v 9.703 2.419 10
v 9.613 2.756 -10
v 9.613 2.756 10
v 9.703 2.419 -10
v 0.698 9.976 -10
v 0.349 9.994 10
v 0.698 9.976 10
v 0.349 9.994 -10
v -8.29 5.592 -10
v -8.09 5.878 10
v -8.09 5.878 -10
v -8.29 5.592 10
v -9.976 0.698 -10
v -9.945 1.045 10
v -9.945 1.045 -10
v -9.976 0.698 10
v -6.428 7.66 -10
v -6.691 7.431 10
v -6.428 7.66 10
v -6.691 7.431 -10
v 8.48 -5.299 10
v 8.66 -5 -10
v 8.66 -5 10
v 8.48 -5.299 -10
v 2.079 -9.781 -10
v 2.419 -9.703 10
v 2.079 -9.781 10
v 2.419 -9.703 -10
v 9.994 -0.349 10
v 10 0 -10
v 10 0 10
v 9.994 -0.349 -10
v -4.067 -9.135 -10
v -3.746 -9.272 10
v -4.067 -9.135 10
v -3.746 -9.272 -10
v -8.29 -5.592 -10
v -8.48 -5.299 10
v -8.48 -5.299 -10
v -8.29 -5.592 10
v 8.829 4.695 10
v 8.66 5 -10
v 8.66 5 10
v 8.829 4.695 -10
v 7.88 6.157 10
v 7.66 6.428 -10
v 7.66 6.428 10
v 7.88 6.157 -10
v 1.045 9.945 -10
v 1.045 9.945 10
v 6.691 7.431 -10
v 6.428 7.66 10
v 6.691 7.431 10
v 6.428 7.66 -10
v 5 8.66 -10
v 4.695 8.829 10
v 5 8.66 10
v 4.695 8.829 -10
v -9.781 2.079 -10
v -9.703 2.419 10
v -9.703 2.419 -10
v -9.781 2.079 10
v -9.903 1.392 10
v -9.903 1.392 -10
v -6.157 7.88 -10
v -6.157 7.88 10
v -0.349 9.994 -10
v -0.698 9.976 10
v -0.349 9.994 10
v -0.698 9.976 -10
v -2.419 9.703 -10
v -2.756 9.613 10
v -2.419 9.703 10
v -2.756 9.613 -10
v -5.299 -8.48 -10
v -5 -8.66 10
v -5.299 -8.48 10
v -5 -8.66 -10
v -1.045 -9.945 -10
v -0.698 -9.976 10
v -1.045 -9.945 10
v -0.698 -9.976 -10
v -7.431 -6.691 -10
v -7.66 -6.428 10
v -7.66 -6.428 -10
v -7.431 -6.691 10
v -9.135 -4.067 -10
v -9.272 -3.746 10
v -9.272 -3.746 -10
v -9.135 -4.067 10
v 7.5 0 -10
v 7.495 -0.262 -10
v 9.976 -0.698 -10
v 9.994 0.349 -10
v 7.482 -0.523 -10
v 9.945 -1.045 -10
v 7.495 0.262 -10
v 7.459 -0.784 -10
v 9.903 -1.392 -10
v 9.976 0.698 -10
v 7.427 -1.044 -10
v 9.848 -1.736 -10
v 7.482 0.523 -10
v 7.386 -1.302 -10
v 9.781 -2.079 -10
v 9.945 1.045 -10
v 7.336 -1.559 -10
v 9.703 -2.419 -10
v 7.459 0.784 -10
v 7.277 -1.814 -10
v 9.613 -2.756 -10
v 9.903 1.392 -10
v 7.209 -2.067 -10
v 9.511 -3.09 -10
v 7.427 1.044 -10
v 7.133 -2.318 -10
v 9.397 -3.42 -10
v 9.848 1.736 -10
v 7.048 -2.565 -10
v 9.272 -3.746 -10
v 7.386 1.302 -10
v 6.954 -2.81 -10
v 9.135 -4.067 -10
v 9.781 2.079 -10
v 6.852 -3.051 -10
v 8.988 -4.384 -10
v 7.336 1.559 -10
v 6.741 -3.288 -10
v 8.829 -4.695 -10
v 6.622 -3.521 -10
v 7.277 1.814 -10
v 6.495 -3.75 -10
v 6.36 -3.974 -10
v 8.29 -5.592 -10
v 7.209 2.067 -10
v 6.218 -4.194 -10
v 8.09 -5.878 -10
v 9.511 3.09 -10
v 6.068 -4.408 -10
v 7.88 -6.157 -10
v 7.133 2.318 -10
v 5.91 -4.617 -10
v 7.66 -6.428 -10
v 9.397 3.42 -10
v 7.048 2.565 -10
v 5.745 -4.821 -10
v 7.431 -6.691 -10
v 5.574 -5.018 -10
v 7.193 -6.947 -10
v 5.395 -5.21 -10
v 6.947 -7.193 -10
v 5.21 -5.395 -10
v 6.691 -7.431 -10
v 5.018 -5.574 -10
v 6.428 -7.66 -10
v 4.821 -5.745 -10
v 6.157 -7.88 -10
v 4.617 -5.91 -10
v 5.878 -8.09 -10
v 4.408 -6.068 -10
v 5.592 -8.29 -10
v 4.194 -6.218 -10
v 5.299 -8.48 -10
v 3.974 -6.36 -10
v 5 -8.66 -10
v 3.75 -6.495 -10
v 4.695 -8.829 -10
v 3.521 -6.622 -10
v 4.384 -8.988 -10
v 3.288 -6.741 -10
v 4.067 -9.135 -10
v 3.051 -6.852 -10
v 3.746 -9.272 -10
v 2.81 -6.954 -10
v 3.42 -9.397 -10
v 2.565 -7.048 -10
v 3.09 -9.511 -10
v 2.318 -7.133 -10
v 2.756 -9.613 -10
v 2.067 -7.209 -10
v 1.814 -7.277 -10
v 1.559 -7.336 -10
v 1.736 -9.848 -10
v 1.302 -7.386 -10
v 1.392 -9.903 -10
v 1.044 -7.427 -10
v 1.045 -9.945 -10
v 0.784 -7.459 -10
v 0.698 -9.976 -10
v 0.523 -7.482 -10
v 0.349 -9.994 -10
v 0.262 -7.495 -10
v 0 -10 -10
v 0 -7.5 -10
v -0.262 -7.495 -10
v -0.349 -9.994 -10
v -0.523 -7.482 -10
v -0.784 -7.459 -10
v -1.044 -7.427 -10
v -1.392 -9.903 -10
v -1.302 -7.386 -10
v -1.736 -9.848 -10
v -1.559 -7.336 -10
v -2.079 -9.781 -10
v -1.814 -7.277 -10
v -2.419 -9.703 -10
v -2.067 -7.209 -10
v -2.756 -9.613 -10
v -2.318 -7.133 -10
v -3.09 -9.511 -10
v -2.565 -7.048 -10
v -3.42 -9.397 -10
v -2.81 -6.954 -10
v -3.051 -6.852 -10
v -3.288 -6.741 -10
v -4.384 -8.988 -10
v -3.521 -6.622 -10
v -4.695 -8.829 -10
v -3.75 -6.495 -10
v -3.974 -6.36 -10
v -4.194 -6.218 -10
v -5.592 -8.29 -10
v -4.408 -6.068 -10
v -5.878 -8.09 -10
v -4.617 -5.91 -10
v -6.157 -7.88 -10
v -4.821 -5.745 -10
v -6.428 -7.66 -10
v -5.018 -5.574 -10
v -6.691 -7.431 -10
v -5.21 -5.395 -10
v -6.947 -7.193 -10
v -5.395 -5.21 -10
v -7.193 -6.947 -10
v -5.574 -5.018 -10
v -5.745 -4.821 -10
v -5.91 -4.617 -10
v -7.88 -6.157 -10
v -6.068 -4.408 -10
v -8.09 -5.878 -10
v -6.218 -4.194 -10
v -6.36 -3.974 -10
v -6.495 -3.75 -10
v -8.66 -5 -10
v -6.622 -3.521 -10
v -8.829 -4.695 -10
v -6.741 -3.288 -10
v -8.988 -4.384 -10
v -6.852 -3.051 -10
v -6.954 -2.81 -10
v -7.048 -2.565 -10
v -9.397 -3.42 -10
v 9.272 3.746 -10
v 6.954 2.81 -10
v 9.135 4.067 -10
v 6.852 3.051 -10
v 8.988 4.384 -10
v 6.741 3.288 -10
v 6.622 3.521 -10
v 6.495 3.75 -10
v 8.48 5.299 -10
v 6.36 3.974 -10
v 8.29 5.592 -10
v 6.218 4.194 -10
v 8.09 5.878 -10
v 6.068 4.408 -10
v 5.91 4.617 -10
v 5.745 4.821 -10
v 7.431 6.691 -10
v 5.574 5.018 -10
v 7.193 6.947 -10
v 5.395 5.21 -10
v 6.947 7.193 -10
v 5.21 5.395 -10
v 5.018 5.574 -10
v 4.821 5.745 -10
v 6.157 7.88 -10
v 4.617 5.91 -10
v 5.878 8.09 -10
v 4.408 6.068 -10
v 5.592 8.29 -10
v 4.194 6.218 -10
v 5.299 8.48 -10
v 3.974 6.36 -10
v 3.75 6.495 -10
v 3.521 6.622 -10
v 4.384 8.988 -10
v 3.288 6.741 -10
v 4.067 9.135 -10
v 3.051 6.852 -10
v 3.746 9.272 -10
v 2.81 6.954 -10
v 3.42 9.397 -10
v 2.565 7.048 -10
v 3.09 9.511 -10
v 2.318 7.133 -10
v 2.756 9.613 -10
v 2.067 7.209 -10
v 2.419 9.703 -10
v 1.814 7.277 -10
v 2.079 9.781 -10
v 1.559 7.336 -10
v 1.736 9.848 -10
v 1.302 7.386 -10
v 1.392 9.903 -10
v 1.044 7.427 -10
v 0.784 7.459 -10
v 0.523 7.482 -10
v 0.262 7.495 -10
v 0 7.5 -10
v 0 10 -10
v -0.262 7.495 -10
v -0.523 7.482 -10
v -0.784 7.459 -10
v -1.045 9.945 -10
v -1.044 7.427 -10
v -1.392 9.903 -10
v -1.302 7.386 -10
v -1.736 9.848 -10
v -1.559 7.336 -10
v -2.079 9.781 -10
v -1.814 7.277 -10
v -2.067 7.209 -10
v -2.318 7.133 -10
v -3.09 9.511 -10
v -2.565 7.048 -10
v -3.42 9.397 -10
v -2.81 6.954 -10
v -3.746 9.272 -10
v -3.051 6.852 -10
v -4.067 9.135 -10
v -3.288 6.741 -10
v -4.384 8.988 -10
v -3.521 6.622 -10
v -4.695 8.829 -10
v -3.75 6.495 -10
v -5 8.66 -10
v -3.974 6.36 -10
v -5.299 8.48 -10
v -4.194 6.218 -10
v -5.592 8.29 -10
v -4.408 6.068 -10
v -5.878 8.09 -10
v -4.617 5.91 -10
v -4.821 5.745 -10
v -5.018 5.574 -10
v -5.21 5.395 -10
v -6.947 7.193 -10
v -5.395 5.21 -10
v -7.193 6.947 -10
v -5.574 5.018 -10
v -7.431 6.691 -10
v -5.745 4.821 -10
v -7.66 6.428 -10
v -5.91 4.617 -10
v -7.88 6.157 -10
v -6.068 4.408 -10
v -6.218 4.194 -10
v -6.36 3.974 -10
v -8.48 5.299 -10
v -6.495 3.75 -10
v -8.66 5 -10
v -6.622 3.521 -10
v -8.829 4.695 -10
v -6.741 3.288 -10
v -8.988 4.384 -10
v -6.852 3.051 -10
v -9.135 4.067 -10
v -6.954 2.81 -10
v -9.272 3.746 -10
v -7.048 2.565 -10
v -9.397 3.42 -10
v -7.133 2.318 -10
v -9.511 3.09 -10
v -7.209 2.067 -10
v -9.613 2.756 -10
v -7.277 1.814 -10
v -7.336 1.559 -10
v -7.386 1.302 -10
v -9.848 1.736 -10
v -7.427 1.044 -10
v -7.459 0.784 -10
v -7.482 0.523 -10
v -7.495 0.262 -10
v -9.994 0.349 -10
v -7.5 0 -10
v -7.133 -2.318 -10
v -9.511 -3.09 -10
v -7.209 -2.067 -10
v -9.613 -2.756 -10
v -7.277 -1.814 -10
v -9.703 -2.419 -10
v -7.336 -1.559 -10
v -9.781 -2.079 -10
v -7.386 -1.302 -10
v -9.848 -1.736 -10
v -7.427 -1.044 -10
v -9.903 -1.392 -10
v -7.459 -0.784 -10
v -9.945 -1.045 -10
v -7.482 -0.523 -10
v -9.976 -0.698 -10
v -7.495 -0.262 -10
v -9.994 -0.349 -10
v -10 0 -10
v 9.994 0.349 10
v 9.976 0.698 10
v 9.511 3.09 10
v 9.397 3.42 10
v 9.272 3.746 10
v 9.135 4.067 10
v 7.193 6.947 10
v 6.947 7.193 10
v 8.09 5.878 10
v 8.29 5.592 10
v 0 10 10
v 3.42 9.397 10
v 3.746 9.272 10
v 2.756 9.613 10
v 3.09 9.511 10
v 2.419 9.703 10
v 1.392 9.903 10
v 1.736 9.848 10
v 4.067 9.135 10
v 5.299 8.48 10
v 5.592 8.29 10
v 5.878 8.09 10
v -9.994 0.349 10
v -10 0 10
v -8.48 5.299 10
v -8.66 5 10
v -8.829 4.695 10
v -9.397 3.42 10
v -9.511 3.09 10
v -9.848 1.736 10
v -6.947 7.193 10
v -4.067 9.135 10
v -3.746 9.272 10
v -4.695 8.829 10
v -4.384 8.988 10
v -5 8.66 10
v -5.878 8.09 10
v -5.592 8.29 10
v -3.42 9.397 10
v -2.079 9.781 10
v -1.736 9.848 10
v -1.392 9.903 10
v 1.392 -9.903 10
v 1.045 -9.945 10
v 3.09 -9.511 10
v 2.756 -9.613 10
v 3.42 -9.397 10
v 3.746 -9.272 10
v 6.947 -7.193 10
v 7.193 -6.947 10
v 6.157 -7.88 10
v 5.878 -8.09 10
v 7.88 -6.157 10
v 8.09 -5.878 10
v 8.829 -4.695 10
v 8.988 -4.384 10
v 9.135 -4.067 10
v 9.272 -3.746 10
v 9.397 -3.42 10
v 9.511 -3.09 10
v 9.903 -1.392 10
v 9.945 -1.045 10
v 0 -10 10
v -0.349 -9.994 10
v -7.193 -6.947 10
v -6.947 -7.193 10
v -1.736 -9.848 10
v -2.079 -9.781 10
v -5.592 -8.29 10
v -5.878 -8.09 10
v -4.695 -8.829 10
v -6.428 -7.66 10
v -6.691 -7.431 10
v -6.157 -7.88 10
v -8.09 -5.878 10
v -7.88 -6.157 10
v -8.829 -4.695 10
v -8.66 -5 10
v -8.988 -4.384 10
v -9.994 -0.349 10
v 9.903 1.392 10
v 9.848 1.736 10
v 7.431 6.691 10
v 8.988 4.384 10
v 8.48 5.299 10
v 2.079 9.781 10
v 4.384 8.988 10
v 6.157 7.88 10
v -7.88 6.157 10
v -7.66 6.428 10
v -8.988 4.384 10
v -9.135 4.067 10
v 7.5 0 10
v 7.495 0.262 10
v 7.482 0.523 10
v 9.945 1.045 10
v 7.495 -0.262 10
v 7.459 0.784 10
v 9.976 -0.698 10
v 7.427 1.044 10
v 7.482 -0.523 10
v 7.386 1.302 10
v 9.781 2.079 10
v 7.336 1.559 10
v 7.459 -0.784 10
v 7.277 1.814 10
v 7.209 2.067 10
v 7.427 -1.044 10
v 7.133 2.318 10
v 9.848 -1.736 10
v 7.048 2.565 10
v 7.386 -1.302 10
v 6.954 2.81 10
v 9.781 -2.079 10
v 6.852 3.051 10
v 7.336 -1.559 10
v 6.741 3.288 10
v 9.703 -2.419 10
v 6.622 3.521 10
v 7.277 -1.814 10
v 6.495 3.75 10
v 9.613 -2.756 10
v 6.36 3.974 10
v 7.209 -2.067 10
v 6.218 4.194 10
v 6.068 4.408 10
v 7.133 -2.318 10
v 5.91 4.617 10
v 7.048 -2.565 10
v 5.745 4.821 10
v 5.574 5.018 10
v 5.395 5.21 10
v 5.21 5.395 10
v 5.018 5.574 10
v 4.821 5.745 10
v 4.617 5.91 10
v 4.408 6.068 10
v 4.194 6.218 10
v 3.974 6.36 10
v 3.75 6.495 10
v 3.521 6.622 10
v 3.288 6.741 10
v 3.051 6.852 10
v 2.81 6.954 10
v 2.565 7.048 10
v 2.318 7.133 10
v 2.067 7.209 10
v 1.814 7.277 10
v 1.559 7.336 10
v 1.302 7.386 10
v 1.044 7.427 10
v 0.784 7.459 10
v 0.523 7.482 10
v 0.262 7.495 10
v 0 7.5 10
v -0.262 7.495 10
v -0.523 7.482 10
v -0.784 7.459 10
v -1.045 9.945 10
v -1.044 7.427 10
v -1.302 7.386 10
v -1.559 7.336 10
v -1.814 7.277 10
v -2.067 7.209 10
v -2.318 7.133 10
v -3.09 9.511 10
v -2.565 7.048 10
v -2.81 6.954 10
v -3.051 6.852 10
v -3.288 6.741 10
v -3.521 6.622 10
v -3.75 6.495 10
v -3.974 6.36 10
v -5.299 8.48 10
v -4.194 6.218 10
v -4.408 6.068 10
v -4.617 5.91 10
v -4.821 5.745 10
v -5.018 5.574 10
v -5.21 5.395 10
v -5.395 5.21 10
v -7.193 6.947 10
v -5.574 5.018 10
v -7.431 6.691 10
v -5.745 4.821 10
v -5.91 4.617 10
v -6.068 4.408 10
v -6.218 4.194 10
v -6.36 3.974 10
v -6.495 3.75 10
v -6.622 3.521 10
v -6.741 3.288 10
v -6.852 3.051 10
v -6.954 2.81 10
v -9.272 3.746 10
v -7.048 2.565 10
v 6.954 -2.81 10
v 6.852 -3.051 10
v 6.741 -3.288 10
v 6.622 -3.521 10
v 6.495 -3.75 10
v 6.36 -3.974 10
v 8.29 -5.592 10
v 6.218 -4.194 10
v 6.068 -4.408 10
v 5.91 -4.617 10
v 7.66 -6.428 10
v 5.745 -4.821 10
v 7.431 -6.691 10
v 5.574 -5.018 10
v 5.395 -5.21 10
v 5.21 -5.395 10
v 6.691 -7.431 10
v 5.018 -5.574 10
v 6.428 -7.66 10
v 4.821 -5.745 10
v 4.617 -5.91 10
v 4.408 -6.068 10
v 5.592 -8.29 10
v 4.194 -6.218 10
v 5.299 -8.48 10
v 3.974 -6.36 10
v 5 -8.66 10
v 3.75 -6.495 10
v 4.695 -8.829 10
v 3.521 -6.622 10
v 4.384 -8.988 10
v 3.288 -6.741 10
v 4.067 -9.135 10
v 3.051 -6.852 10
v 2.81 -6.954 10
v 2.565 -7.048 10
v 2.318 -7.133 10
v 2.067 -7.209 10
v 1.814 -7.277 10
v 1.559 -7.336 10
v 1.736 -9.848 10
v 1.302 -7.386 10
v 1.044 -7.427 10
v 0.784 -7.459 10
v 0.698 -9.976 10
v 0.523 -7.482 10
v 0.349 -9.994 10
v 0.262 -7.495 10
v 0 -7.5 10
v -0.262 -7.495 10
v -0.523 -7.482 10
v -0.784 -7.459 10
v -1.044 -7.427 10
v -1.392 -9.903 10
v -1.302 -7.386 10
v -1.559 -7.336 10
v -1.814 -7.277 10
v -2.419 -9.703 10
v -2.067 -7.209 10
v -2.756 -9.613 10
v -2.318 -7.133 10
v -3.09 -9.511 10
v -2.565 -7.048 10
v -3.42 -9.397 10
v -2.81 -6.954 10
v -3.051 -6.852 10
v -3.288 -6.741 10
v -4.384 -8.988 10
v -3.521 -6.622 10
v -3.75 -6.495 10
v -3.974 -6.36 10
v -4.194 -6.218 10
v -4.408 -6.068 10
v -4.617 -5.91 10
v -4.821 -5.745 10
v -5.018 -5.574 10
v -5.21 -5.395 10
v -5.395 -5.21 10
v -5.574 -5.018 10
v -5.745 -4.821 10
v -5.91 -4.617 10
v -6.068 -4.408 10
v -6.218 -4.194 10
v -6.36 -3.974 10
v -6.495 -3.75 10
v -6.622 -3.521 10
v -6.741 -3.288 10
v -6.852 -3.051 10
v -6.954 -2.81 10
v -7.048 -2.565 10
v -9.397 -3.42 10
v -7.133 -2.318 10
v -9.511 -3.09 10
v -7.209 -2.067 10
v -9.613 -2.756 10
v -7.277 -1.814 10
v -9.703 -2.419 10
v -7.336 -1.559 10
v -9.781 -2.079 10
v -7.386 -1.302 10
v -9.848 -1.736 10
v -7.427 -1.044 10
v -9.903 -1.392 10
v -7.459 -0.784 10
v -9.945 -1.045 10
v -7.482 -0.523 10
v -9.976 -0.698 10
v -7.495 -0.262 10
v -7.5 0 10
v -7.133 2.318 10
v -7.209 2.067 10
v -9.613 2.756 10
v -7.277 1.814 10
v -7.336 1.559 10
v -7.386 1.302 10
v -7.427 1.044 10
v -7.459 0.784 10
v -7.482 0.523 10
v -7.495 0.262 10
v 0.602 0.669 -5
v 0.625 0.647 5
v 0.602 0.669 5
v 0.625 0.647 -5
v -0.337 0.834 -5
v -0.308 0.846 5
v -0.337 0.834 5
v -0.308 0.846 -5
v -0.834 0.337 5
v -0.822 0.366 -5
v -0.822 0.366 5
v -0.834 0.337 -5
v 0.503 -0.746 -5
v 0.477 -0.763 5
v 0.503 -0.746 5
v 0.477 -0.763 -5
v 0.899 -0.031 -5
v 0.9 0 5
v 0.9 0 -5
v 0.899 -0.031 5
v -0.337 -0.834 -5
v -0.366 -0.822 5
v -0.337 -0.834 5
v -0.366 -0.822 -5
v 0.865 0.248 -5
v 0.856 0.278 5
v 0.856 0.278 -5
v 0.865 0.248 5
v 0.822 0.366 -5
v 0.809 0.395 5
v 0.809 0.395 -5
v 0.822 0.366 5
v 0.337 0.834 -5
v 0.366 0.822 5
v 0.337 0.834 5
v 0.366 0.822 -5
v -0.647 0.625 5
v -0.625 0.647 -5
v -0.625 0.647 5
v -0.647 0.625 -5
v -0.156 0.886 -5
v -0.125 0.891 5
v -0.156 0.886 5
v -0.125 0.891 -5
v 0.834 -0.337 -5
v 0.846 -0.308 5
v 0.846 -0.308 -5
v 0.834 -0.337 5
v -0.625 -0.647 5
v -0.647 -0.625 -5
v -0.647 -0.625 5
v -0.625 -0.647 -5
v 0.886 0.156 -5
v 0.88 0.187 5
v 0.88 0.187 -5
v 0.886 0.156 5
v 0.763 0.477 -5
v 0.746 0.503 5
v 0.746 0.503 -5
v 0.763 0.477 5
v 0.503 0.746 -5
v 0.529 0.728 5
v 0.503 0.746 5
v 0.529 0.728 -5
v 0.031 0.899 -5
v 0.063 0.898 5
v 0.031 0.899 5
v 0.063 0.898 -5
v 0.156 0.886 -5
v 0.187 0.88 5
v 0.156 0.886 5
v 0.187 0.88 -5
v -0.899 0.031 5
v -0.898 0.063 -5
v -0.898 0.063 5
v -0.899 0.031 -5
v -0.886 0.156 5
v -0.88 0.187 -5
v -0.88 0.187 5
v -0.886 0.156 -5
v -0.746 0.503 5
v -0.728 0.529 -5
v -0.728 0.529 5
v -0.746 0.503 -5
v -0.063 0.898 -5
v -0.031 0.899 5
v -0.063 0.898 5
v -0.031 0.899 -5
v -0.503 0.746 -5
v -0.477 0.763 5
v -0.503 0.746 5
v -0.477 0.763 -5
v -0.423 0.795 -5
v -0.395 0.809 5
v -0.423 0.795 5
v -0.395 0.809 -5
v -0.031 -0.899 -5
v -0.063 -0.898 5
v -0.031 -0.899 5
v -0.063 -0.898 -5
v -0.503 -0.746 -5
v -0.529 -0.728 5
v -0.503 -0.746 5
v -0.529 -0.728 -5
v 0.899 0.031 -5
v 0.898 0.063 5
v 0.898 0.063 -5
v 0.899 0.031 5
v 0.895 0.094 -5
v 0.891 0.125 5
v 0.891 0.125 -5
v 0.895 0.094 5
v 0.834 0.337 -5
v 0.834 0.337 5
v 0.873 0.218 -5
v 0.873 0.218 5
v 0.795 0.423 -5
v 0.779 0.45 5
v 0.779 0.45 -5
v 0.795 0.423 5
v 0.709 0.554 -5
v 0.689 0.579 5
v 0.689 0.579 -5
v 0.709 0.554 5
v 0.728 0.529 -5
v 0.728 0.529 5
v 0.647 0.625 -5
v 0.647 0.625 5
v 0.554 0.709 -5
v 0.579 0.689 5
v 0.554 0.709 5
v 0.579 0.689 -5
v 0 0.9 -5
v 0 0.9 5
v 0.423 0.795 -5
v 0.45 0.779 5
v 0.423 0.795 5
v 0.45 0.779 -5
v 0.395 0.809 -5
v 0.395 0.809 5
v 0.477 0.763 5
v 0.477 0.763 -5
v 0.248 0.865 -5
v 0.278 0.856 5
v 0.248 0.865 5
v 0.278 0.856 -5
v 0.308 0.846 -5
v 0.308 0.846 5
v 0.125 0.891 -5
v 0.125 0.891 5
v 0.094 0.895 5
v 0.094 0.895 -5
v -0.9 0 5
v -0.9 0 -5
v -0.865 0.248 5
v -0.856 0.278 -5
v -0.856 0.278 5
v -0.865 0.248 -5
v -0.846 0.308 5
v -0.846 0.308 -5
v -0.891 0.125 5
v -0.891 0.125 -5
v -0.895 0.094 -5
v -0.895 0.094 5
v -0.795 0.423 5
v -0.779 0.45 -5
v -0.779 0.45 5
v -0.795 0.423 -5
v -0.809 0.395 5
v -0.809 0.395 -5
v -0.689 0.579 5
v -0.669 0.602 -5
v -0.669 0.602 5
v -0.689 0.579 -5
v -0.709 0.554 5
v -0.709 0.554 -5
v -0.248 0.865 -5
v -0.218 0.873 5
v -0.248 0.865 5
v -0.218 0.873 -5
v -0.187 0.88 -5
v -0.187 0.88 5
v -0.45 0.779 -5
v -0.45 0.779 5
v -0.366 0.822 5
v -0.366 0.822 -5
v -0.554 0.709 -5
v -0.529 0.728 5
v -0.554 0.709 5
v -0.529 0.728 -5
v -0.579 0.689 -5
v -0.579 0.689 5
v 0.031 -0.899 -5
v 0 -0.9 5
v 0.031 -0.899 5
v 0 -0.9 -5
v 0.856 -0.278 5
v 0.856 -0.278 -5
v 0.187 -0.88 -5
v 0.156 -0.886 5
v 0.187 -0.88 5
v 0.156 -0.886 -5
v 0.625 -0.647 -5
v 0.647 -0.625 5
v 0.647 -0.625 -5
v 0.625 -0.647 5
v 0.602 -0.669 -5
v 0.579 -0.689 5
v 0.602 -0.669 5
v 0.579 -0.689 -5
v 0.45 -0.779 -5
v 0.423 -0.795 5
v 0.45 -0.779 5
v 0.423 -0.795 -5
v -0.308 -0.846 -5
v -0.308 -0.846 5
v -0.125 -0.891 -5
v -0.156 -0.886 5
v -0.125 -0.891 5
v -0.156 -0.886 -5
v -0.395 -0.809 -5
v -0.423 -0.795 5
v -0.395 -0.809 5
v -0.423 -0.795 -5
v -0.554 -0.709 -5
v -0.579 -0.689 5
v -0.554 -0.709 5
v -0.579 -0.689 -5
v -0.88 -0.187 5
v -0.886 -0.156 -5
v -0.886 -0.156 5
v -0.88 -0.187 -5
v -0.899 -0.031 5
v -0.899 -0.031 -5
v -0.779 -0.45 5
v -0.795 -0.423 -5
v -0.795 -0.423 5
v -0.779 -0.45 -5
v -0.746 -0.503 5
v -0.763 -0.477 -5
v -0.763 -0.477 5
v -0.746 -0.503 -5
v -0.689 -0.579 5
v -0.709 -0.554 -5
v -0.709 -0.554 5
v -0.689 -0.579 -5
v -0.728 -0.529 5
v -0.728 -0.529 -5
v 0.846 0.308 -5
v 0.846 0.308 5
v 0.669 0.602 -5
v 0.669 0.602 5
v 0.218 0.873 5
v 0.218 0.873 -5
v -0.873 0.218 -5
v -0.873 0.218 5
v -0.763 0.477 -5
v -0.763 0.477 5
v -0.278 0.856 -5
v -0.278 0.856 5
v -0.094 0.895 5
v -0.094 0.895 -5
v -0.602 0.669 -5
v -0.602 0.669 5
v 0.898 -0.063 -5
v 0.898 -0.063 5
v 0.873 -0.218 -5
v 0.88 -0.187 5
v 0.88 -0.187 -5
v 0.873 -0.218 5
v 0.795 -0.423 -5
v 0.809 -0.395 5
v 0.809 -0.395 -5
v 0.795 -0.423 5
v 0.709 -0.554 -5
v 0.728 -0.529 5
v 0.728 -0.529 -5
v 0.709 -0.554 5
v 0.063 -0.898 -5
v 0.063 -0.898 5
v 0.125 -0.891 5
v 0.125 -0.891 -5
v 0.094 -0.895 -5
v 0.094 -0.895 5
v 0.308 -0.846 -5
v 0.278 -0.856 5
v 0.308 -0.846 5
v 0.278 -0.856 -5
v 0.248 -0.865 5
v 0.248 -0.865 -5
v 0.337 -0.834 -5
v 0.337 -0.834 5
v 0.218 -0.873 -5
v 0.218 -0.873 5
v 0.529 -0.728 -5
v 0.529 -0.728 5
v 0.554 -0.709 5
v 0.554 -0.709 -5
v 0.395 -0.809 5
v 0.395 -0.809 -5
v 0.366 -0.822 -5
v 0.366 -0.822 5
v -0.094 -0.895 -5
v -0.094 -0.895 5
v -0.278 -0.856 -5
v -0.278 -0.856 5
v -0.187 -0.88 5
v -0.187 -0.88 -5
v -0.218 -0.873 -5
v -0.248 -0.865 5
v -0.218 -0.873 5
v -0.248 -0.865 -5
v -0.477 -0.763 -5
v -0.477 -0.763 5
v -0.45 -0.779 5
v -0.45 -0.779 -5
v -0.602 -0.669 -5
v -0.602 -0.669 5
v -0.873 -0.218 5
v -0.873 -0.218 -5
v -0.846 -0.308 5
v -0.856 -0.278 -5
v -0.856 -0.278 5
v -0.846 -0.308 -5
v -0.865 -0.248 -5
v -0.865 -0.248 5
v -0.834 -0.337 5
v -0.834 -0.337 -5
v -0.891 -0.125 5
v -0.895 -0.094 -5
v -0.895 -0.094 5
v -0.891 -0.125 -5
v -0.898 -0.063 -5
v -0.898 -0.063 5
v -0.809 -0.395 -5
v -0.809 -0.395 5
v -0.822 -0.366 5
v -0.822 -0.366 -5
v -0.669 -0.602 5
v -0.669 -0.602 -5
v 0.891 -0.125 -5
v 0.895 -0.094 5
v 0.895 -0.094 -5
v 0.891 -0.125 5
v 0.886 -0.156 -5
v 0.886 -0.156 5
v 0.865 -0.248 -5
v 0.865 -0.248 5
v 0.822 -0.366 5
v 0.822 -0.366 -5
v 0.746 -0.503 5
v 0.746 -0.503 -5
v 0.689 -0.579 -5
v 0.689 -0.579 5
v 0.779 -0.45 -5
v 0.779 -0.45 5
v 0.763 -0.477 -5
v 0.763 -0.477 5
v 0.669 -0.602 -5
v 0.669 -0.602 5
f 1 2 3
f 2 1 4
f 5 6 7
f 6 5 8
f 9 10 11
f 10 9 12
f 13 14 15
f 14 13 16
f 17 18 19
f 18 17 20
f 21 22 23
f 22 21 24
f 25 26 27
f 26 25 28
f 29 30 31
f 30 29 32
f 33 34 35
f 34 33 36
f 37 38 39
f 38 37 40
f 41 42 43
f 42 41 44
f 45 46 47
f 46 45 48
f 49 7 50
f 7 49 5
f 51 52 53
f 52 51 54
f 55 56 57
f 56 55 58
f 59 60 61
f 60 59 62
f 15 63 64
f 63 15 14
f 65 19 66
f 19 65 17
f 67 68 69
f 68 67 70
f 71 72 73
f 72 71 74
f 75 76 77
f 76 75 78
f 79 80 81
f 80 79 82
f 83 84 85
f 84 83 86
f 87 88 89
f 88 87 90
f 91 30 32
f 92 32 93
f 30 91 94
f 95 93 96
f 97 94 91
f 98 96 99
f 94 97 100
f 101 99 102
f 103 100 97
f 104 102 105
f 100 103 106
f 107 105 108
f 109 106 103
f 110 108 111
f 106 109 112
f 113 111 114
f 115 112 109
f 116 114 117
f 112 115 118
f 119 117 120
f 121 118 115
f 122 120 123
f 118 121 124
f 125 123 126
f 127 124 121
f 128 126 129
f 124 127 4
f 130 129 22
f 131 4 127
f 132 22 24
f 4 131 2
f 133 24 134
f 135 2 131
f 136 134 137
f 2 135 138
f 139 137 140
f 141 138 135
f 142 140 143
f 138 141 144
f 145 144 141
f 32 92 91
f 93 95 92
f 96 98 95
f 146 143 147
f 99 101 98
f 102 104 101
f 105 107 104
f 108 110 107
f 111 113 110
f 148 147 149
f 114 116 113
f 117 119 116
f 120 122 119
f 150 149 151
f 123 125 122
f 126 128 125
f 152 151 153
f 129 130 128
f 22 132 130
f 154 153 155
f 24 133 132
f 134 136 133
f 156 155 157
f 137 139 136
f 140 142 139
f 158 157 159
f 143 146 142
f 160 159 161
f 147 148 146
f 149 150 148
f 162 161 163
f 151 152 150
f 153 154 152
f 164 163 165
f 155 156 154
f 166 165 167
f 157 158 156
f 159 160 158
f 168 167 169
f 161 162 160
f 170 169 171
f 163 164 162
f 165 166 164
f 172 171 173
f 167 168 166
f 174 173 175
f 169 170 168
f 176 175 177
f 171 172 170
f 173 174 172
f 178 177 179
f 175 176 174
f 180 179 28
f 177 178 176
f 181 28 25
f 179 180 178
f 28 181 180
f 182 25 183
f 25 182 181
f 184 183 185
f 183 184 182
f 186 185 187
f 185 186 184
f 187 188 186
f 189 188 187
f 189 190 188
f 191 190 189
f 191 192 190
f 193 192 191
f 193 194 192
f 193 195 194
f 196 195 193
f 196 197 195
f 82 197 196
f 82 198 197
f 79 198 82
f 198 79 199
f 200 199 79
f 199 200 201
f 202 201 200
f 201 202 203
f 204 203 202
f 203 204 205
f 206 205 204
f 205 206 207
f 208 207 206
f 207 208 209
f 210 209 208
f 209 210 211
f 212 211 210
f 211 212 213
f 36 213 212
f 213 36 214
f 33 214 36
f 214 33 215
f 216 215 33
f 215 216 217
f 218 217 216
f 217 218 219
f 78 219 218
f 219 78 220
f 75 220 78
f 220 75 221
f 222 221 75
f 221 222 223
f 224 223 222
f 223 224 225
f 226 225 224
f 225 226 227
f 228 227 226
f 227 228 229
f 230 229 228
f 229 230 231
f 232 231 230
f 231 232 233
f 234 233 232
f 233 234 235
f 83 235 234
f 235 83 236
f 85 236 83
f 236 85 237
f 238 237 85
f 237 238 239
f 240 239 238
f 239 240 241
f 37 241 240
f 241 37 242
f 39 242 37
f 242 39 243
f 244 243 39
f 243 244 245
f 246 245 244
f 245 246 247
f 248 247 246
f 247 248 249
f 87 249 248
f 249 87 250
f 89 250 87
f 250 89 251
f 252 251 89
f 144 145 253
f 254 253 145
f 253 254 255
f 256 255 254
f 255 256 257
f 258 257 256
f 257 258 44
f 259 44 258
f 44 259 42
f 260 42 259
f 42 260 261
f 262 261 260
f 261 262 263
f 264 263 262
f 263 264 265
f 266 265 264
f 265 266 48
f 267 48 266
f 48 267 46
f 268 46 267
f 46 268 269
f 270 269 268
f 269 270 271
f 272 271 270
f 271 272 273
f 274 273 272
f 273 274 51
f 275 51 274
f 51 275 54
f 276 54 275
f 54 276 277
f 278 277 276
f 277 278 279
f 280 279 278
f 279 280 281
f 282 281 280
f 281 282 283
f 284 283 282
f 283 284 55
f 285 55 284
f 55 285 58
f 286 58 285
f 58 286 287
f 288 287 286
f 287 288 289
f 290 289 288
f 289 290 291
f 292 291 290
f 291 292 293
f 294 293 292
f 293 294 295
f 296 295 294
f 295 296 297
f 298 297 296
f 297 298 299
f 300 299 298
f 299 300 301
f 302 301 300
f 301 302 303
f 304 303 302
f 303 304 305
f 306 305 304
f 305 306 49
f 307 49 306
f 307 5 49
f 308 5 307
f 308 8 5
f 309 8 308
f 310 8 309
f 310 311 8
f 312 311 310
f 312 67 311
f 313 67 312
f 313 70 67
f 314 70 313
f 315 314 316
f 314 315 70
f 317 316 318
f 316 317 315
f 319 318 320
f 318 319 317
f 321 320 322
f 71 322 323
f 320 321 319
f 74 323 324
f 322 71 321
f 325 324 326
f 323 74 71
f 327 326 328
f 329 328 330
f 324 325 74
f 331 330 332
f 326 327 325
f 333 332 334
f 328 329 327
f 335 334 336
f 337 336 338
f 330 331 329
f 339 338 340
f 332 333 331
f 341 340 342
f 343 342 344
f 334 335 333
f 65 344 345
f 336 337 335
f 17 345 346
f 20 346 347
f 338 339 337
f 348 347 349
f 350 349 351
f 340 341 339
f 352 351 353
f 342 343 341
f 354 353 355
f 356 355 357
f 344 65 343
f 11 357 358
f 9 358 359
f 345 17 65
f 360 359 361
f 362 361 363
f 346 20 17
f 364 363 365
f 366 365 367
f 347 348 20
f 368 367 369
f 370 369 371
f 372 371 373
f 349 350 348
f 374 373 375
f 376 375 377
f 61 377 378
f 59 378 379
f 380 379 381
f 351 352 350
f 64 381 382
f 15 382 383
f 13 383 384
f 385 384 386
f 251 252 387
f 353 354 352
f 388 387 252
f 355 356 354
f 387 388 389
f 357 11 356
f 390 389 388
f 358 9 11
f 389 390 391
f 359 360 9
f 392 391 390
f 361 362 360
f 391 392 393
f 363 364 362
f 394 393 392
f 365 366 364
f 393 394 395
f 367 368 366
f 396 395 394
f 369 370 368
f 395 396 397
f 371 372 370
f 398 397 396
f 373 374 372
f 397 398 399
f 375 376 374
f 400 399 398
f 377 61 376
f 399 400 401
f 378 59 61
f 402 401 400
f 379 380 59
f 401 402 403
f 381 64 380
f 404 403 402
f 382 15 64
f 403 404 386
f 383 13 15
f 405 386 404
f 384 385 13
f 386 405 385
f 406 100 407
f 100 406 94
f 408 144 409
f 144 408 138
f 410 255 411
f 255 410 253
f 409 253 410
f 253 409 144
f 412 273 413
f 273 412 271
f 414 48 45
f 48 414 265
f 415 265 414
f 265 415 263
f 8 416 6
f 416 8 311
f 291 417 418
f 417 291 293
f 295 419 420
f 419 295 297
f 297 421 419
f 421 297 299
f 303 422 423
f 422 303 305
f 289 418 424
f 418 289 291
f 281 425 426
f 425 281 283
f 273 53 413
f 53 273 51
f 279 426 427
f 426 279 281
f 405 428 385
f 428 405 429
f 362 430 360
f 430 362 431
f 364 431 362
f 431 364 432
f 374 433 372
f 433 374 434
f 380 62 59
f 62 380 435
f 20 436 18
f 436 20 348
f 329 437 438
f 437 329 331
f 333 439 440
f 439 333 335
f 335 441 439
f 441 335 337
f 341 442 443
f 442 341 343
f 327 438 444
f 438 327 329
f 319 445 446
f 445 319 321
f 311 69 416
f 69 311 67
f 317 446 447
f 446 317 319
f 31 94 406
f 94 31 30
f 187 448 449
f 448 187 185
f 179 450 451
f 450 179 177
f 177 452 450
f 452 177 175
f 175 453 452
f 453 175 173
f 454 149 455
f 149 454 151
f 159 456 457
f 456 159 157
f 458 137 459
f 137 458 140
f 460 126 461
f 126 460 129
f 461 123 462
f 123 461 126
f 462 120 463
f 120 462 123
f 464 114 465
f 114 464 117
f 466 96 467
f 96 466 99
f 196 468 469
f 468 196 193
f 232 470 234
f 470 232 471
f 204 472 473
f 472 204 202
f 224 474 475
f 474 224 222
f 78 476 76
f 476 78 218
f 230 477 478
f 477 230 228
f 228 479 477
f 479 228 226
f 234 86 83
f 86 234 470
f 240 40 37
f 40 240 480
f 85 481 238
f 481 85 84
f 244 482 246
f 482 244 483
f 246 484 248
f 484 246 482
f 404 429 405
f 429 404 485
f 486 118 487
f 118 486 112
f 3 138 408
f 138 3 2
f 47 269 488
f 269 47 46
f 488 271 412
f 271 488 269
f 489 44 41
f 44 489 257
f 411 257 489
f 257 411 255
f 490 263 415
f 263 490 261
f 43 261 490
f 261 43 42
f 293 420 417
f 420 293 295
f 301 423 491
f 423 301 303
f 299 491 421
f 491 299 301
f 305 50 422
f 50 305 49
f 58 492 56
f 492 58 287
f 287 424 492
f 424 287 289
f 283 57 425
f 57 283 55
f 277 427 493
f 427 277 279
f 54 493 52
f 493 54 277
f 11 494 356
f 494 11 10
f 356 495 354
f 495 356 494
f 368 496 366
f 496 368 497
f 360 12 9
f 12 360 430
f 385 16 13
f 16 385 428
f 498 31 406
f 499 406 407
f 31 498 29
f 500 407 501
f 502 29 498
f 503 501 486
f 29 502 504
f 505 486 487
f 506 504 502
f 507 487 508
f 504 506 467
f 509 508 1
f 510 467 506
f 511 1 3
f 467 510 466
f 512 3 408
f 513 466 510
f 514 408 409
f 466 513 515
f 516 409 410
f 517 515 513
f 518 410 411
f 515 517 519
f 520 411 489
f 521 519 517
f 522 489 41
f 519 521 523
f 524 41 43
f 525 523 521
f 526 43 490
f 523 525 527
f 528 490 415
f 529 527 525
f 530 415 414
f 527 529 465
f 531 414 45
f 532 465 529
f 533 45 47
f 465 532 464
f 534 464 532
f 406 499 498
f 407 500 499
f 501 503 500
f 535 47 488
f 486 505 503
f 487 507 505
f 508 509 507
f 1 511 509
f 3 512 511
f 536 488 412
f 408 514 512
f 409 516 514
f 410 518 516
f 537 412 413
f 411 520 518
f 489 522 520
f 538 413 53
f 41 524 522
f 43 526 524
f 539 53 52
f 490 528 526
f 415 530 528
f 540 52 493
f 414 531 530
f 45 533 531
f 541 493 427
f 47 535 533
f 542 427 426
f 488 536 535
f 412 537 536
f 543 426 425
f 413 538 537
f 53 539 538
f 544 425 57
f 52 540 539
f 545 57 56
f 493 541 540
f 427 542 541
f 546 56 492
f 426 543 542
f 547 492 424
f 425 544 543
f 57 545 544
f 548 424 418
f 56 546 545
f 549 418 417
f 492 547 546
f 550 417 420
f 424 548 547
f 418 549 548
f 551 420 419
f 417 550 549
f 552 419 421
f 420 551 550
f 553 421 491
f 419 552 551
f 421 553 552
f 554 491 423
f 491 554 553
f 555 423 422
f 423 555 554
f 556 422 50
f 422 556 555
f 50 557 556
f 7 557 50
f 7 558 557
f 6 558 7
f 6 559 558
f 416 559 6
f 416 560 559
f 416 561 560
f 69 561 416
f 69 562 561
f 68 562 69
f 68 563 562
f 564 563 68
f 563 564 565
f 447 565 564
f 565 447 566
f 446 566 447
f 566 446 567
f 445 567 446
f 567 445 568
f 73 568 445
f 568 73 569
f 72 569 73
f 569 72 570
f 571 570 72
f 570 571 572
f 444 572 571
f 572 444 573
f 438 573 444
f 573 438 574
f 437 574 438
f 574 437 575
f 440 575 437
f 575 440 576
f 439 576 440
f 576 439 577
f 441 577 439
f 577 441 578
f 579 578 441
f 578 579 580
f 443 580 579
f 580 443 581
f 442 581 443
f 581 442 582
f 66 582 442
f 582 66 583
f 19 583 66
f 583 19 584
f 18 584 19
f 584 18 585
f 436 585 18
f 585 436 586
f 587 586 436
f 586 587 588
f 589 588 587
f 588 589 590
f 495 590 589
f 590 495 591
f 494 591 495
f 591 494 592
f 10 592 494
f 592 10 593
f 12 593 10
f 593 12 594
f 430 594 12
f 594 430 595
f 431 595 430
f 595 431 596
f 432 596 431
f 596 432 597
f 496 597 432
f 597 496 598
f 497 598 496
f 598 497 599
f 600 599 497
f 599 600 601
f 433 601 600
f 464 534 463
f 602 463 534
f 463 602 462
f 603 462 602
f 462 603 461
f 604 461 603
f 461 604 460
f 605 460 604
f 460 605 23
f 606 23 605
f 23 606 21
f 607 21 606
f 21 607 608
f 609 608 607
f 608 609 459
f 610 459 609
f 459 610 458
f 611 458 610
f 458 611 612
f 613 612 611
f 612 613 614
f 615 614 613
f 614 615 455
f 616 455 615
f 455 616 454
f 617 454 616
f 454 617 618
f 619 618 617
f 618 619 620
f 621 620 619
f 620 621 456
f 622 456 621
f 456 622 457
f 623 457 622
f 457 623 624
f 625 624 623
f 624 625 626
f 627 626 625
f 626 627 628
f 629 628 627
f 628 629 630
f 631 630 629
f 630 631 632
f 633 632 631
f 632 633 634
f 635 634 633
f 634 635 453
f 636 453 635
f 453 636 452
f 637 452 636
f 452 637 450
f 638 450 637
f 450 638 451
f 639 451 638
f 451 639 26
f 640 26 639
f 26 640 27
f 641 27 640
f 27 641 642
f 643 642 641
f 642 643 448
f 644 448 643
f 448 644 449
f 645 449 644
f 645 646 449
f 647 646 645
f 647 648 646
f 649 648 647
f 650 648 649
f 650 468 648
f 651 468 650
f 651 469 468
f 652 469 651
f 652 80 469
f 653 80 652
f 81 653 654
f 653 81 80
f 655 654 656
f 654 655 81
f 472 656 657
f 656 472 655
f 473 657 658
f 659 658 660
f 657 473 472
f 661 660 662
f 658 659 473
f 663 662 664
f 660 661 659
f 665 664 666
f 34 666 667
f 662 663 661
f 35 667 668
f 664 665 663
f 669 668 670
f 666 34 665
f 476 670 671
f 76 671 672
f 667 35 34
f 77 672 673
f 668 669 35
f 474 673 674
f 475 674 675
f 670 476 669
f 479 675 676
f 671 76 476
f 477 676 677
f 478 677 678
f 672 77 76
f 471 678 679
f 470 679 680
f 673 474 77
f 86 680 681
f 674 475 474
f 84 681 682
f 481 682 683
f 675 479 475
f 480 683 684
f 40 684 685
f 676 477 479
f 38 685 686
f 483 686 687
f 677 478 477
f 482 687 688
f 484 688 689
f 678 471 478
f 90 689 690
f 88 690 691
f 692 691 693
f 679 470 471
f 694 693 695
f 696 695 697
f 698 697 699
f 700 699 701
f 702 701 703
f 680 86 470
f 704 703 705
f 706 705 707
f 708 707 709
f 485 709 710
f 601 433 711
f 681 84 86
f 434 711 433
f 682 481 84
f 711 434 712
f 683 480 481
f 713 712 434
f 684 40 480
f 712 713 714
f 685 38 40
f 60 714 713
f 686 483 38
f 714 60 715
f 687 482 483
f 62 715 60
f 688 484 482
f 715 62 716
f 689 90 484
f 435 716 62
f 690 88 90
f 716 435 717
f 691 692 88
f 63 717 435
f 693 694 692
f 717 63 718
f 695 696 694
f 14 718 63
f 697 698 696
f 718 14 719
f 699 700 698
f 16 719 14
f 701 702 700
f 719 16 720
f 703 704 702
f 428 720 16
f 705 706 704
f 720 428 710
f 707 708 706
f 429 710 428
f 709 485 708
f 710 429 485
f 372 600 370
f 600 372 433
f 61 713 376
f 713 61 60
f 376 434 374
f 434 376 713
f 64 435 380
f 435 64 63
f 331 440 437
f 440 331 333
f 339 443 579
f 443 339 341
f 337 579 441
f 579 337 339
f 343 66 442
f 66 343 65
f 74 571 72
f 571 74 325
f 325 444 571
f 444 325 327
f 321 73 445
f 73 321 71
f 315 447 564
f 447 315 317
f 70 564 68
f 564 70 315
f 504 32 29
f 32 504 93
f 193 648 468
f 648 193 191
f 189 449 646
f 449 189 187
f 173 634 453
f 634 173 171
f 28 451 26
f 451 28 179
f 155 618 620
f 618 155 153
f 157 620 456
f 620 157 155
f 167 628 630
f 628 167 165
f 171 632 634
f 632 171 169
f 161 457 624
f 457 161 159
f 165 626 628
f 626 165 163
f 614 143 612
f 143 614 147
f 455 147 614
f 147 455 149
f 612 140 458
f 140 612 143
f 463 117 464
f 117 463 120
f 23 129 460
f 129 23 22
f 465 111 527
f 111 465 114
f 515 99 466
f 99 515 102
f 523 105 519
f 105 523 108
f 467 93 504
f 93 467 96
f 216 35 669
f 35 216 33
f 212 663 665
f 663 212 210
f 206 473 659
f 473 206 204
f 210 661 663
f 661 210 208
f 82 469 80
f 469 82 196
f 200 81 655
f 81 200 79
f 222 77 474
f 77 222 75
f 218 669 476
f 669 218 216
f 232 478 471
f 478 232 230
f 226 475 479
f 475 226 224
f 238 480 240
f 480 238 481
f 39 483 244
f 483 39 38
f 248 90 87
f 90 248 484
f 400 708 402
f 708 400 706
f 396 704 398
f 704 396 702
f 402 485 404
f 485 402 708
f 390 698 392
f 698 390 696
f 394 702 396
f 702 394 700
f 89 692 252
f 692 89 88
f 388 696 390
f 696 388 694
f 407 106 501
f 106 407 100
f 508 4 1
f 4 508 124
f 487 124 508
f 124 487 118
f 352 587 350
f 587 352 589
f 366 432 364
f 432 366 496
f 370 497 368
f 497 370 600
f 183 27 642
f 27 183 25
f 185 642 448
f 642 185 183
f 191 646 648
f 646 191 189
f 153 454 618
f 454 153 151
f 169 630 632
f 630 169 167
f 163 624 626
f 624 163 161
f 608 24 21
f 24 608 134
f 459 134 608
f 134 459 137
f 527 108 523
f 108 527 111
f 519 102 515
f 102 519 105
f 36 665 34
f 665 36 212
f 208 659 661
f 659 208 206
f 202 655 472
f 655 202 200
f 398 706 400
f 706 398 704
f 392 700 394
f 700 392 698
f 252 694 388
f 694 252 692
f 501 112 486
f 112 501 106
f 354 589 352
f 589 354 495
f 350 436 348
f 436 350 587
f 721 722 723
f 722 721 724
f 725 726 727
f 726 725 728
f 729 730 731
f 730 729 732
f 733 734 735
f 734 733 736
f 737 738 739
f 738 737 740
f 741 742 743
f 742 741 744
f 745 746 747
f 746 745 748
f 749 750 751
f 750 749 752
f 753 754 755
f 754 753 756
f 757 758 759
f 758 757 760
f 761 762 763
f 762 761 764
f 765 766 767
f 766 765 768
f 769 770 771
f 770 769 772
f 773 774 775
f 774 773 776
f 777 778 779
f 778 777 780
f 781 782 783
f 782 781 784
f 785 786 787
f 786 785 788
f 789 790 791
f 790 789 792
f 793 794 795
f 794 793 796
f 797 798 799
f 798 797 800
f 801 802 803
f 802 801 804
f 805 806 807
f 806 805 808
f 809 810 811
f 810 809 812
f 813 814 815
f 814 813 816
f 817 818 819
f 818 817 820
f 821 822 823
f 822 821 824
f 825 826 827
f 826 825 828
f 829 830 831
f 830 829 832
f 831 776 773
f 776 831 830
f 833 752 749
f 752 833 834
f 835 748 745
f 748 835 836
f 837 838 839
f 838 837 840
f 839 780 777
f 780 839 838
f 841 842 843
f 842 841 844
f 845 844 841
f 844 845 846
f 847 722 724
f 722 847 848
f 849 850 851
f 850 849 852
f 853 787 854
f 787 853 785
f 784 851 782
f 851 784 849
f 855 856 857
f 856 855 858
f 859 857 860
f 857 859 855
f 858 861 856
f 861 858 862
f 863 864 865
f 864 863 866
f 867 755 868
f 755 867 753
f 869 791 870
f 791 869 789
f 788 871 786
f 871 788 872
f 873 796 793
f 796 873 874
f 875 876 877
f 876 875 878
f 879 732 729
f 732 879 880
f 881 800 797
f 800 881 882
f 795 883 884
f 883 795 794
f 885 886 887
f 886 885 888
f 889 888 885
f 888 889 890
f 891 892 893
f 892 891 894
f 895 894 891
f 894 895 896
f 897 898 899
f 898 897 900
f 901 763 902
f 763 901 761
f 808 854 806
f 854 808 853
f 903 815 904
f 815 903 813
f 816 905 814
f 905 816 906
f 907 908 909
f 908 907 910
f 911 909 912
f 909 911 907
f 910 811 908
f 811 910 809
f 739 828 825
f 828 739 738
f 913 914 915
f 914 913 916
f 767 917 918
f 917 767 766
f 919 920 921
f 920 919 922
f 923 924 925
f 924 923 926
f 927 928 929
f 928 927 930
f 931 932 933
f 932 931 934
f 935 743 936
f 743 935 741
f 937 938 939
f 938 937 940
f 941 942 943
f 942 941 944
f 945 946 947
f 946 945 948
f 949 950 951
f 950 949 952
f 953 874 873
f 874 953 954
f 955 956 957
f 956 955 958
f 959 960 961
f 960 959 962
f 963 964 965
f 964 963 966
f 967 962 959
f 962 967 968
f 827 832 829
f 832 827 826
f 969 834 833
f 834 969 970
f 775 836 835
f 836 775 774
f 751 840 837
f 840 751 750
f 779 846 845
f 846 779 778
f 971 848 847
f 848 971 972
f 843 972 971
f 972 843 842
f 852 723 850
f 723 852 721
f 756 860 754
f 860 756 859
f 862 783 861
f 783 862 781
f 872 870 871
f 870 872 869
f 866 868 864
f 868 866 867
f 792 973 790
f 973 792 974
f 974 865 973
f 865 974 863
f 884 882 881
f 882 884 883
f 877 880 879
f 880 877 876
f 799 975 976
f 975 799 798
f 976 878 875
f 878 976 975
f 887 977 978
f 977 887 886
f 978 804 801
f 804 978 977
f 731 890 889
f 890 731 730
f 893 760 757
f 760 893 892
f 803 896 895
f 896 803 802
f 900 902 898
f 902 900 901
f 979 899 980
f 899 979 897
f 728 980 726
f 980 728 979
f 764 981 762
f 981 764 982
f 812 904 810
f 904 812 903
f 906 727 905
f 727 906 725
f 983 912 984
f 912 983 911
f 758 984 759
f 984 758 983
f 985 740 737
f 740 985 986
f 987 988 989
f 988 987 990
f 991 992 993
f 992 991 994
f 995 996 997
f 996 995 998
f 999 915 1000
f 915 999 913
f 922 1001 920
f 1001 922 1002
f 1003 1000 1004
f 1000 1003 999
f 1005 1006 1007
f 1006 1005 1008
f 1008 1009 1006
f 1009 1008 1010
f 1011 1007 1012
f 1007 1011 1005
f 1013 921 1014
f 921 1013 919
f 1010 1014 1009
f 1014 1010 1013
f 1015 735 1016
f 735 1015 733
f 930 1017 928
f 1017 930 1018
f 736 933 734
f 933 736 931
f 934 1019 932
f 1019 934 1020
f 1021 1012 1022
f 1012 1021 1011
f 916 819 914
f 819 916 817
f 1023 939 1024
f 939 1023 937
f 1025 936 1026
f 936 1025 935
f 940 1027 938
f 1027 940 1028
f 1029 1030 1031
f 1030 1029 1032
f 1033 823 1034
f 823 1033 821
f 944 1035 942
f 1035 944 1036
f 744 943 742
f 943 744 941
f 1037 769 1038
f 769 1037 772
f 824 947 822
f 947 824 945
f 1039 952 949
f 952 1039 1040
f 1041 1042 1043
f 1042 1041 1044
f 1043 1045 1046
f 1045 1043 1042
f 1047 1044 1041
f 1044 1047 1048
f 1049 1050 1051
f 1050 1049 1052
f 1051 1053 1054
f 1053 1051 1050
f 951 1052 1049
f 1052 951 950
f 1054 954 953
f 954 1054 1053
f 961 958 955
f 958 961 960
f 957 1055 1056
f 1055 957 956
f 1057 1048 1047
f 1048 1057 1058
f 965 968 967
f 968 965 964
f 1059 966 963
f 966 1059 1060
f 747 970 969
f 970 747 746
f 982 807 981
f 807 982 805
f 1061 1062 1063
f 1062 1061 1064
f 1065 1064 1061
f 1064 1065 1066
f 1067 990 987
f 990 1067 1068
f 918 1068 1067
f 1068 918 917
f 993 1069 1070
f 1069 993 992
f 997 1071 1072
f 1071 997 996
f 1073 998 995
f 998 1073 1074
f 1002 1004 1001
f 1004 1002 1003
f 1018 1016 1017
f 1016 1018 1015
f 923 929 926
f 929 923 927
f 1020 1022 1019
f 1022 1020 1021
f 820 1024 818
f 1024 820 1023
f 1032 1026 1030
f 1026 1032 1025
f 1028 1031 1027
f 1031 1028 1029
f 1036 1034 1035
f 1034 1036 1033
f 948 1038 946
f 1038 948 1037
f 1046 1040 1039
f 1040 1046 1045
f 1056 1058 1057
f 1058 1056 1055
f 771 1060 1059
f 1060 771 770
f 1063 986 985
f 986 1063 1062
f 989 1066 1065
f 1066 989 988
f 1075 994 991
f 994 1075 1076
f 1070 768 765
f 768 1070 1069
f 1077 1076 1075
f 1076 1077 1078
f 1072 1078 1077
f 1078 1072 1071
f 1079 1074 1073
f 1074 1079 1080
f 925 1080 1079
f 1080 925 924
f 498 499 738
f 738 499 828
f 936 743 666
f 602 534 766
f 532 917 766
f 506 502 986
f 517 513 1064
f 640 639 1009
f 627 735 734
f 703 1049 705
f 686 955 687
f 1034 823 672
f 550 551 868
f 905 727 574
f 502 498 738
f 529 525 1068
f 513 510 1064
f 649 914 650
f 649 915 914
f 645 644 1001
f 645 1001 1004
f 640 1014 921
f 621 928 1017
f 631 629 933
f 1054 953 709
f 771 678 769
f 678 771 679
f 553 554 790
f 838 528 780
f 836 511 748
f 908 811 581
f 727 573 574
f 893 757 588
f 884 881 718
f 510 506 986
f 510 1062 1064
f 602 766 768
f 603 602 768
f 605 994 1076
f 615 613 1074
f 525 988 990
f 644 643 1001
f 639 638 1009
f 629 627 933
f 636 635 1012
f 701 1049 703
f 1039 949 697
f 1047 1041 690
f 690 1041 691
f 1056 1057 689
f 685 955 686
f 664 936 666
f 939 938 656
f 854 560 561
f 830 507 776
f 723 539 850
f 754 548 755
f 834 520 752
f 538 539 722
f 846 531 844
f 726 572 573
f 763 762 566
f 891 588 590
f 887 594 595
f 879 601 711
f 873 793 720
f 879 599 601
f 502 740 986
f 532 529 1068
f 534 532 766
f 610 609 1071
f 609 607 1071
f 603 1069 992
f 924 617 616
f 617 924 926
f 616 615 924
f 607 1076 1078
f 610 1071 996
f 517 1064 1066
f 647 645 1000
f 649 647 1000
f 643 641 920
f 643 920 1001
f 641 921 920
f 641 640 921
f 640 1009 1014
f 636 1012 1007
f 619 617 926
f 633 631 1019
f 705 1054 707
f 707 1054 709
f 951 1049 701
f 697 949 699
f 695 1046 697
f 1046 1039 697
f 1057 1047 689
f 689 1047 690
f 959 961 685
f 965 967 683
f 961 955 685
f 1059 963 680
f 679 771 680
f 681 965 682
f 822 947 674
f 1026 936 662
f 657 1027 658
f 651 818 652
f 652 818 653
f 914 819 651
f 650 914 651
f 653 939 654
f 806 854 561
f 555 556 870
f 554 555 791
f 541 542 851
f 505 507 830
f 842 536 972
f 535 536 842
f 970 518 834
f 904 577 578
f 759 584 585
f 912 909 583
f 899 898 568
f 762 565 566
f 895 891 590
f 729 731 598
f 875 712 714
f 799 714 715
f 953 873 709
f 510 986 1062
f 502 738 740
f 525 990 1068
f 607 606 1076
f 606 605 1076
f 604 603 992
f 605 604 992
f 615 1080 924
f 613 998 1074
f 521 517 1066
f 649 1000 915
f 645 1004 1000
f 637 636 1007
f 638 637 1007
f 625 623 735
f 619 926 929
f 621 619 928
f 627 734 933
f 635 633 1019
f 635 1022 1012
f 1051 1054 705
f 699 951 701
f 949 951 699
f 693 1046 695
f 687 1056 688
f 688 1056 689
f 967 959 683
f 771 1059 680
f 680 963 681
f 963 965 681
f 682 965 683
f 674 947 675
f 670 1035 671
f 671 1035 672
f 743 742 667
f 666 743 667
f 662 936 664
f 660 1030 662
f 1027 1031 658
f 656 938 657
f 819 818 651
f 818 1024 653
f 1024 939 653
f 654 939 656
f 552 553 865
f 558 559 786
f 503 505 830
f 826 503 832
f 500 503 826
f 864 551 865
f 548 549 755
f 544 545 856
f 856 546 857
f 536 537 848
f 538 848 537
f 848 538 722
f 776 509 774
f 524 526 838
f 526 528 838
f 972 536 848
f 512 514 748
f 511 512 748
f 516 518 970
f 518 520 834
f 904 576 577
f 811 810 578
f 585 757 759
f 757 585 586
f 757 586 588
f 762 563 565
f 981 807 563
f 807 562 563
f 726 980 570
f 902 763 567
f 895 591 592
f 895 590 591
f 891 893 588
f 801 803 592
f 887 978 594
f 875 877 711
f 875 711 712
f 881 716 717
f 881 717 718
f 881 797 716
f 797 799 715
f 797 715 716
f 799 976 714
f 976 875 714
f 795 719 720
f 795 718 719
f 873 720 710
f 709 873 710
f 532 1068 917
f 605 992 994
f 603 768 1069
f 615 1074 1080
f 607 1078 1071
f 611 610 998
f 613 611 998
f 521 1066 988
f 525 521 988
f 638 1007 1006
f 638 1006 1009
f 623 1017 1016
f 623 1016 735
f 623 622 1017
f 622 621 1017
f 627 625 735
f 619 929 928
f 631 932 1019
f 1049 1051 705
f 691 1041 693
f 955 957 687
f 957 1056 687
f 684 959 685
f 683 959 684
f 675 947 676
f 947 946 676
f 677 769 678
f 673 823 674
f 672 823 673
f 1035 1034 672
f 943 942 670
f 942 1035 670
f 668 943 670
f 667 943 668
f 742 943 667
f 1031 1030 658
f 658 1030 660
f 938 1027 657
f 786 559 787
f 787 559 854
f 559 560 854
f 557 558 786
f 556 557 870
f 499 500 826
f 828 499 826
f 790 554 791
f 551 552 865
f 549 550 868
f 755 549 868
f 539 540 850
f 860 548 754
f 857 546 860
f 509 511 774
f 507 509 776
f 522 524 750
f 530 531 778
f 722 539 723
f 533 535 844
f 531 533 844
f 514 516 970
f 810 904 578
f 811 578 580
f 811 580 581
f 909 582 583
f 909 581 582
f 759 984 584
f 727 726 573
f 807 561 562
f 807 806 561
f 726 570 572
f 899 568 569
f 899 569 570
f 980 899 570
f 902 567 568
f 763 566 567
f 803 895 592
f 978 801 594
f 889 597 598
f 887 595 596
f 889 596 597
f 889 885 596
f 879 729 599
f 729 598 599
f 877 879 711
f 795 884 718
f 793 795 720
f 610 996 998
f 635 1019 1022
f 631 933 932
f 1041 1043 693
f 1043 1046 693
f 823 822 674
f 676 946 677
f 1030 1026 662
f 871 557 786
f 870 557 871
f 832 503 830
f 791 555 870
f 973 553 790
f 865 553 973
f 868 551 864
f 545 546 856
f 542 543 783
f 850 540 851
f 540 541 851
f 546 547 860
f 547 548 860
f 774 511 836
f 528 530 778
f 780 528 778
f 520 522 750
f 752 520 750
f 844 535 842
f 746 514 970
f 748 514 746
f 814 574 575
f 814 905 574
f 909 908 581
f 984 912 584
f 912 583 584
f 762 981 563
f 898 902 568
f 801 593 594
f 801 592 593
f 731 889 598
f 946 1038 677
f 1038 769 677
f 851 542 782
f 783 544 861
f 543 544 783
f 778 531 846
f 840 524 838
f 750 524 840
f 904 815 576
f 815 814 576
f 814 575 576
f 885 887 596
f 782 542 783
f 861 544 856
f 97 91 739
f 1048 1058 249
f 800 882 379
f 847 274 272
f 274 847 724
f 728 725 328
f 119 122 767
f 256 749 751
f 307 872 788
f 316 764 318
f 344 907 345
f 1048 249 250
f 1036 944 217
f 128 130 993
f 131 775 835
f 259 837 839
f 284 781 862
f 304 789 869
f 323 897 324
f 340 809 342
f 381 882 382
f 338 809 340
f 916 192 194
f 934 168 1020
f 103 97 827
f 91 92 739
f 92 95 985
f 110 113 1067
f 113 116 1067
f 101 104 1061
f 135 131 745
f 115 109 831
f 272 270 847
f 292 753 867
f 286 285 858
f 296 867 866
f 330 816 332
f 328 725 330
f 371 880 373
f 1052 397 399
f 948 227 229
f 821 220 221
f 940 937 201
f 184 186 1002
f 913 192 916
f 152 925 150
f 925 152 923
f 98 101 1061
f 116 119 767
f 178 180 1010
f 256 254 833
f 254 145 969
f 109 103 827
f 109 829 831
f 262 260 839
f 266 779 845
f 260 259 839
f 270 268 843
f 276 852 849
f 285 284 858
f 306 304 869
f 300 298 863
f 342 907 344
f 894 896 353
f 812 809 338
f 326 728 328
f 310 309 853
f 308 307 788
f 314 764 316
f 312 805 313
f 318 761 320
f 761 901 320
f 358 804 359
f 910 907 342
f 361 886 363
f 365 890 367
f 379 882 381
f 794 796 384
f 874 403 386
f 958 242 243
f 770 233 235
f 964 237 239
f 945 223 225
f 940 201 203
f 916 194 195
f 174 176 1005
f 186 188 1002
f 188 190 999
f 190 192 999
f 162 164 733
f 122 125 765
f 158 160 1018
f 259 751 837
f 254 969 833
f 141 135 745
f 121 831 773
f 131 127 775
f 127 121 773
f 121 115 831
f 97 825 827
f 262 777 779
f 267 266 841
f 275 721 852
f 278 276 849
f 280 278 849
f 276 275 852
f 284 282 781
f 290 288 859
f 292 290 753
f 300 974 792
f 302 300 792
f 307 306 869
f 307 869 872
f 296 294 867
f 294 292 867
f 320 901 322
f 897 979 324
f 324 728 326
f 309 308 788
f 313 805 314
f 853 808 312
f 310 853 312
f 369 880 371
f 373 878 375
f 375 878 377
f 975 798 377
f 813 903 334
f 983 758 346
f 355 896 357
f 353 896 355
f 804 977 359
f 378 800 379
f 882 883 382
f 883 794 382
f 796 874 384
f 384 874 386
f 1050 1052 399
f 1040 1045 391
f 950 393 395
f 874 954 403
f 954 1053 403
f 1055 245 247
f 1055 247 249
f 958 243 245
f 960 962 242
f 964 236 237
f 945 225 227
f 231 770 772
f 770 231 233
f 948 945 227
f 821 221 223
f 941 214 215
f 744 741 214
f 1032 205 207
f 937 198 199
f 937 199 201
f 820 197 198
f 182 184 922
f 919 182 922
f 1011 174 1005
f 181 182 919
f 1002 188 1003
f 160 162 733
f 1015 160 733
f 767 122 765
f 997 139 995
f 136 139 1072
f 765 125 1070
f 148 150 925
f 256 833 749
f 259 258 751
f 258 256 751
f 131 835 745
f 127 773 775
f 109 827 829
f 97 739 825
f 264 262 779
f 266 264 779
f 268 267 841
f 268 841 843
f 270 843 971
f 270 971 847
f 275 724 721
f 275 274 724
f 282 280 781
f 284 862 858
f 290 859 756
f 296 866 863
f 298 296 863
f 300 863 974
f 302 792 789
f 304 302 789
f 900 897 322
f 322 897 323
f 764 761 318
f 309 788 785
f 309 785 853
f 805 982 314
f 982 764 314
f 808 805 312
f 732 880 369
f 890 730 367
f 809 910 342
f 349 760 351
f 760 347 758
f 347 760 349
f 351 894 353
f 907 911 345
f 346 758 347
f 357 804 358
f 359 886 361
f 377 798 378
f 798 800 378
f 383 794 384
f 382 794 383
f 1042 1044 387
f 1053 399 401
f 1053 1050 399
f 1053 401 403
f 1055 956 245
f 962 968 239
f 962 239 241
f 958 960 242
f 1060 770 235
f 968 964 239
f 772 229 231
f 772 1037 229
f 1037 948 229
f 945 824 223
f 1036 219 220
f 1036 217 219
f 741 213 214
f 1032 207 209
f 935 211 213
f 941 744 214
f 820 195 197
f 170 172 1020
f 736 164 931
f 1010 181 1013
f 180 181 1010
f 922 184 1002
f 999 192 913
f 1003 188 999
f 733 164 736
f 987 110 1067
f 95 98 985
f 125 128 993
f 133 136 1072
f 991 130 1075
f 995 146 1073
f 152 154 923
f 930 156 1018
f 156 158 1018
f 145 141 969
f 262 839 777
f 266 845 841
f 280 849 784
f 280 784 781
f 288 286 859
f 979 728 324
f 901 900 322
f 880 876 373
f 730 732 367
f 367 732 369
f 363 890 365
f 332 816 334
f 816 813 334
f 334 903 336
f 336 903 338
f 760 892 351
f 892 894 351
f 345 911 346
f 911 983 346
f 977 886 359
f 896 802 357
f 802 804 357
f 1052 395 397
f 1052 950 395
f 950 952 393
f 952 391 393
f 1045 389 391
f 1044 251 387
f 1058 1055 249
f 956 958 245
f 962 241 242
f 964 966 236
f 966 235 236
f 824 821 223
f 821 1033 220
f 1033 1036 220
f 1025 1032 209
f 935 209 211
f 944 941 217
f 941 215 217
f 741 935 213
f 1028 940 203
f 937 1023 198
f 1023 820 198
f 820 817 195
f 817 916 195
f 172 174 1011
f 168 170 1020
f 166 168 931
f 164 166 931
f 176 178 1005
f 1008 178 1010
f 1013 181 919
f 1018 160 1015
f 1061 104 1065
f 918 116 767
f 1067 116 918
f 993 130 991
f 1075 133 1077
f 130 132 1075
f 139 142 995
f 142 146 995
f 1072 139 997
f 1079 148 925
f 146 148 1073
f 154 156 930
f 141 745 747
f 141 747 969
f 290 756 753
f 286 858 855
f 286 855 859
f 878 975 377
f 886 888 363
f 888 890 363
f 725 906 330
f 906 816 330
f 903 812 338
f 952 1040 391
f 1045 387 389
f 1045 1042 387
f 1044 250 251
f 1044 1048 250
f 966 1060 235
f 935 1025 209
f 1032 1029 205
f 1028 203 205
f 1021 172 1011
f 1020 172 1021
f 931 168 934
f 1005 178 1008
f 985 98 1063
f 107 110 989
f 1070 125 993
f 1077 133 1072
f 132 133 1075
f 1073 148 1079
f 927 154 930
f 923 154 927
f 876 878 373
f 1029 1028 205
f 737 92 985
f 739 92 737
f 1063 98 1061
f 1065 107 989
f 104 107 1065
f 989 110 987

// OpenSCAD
//cube([120,120,3], center = true);
//translate([-45,-45,0])cylinder(h = 3, r=15, $fn = 180, center = true);
//rotate_extrude(convexity = 10, $fn = A) translate([20+1.5, 0, 0])circle(d = 3, $fn = B);


difference(){
    
translate([0,0,0])cylinder(h = 20, d=20, $fn = 180, center = true);

translate([0,0,0])cylinder(h = 30, d=1.8, $fn = 180, center = true);
    
translate([0,0,7.5])cylinder(h = 5, d1=1.8, d2=15, $fn = 180, center = true);
    
translate([0,0,-7.5])cylinder(h = 5, d1=15, d2=1.8, $fn = 180, center = true);    
    
    


}



 
